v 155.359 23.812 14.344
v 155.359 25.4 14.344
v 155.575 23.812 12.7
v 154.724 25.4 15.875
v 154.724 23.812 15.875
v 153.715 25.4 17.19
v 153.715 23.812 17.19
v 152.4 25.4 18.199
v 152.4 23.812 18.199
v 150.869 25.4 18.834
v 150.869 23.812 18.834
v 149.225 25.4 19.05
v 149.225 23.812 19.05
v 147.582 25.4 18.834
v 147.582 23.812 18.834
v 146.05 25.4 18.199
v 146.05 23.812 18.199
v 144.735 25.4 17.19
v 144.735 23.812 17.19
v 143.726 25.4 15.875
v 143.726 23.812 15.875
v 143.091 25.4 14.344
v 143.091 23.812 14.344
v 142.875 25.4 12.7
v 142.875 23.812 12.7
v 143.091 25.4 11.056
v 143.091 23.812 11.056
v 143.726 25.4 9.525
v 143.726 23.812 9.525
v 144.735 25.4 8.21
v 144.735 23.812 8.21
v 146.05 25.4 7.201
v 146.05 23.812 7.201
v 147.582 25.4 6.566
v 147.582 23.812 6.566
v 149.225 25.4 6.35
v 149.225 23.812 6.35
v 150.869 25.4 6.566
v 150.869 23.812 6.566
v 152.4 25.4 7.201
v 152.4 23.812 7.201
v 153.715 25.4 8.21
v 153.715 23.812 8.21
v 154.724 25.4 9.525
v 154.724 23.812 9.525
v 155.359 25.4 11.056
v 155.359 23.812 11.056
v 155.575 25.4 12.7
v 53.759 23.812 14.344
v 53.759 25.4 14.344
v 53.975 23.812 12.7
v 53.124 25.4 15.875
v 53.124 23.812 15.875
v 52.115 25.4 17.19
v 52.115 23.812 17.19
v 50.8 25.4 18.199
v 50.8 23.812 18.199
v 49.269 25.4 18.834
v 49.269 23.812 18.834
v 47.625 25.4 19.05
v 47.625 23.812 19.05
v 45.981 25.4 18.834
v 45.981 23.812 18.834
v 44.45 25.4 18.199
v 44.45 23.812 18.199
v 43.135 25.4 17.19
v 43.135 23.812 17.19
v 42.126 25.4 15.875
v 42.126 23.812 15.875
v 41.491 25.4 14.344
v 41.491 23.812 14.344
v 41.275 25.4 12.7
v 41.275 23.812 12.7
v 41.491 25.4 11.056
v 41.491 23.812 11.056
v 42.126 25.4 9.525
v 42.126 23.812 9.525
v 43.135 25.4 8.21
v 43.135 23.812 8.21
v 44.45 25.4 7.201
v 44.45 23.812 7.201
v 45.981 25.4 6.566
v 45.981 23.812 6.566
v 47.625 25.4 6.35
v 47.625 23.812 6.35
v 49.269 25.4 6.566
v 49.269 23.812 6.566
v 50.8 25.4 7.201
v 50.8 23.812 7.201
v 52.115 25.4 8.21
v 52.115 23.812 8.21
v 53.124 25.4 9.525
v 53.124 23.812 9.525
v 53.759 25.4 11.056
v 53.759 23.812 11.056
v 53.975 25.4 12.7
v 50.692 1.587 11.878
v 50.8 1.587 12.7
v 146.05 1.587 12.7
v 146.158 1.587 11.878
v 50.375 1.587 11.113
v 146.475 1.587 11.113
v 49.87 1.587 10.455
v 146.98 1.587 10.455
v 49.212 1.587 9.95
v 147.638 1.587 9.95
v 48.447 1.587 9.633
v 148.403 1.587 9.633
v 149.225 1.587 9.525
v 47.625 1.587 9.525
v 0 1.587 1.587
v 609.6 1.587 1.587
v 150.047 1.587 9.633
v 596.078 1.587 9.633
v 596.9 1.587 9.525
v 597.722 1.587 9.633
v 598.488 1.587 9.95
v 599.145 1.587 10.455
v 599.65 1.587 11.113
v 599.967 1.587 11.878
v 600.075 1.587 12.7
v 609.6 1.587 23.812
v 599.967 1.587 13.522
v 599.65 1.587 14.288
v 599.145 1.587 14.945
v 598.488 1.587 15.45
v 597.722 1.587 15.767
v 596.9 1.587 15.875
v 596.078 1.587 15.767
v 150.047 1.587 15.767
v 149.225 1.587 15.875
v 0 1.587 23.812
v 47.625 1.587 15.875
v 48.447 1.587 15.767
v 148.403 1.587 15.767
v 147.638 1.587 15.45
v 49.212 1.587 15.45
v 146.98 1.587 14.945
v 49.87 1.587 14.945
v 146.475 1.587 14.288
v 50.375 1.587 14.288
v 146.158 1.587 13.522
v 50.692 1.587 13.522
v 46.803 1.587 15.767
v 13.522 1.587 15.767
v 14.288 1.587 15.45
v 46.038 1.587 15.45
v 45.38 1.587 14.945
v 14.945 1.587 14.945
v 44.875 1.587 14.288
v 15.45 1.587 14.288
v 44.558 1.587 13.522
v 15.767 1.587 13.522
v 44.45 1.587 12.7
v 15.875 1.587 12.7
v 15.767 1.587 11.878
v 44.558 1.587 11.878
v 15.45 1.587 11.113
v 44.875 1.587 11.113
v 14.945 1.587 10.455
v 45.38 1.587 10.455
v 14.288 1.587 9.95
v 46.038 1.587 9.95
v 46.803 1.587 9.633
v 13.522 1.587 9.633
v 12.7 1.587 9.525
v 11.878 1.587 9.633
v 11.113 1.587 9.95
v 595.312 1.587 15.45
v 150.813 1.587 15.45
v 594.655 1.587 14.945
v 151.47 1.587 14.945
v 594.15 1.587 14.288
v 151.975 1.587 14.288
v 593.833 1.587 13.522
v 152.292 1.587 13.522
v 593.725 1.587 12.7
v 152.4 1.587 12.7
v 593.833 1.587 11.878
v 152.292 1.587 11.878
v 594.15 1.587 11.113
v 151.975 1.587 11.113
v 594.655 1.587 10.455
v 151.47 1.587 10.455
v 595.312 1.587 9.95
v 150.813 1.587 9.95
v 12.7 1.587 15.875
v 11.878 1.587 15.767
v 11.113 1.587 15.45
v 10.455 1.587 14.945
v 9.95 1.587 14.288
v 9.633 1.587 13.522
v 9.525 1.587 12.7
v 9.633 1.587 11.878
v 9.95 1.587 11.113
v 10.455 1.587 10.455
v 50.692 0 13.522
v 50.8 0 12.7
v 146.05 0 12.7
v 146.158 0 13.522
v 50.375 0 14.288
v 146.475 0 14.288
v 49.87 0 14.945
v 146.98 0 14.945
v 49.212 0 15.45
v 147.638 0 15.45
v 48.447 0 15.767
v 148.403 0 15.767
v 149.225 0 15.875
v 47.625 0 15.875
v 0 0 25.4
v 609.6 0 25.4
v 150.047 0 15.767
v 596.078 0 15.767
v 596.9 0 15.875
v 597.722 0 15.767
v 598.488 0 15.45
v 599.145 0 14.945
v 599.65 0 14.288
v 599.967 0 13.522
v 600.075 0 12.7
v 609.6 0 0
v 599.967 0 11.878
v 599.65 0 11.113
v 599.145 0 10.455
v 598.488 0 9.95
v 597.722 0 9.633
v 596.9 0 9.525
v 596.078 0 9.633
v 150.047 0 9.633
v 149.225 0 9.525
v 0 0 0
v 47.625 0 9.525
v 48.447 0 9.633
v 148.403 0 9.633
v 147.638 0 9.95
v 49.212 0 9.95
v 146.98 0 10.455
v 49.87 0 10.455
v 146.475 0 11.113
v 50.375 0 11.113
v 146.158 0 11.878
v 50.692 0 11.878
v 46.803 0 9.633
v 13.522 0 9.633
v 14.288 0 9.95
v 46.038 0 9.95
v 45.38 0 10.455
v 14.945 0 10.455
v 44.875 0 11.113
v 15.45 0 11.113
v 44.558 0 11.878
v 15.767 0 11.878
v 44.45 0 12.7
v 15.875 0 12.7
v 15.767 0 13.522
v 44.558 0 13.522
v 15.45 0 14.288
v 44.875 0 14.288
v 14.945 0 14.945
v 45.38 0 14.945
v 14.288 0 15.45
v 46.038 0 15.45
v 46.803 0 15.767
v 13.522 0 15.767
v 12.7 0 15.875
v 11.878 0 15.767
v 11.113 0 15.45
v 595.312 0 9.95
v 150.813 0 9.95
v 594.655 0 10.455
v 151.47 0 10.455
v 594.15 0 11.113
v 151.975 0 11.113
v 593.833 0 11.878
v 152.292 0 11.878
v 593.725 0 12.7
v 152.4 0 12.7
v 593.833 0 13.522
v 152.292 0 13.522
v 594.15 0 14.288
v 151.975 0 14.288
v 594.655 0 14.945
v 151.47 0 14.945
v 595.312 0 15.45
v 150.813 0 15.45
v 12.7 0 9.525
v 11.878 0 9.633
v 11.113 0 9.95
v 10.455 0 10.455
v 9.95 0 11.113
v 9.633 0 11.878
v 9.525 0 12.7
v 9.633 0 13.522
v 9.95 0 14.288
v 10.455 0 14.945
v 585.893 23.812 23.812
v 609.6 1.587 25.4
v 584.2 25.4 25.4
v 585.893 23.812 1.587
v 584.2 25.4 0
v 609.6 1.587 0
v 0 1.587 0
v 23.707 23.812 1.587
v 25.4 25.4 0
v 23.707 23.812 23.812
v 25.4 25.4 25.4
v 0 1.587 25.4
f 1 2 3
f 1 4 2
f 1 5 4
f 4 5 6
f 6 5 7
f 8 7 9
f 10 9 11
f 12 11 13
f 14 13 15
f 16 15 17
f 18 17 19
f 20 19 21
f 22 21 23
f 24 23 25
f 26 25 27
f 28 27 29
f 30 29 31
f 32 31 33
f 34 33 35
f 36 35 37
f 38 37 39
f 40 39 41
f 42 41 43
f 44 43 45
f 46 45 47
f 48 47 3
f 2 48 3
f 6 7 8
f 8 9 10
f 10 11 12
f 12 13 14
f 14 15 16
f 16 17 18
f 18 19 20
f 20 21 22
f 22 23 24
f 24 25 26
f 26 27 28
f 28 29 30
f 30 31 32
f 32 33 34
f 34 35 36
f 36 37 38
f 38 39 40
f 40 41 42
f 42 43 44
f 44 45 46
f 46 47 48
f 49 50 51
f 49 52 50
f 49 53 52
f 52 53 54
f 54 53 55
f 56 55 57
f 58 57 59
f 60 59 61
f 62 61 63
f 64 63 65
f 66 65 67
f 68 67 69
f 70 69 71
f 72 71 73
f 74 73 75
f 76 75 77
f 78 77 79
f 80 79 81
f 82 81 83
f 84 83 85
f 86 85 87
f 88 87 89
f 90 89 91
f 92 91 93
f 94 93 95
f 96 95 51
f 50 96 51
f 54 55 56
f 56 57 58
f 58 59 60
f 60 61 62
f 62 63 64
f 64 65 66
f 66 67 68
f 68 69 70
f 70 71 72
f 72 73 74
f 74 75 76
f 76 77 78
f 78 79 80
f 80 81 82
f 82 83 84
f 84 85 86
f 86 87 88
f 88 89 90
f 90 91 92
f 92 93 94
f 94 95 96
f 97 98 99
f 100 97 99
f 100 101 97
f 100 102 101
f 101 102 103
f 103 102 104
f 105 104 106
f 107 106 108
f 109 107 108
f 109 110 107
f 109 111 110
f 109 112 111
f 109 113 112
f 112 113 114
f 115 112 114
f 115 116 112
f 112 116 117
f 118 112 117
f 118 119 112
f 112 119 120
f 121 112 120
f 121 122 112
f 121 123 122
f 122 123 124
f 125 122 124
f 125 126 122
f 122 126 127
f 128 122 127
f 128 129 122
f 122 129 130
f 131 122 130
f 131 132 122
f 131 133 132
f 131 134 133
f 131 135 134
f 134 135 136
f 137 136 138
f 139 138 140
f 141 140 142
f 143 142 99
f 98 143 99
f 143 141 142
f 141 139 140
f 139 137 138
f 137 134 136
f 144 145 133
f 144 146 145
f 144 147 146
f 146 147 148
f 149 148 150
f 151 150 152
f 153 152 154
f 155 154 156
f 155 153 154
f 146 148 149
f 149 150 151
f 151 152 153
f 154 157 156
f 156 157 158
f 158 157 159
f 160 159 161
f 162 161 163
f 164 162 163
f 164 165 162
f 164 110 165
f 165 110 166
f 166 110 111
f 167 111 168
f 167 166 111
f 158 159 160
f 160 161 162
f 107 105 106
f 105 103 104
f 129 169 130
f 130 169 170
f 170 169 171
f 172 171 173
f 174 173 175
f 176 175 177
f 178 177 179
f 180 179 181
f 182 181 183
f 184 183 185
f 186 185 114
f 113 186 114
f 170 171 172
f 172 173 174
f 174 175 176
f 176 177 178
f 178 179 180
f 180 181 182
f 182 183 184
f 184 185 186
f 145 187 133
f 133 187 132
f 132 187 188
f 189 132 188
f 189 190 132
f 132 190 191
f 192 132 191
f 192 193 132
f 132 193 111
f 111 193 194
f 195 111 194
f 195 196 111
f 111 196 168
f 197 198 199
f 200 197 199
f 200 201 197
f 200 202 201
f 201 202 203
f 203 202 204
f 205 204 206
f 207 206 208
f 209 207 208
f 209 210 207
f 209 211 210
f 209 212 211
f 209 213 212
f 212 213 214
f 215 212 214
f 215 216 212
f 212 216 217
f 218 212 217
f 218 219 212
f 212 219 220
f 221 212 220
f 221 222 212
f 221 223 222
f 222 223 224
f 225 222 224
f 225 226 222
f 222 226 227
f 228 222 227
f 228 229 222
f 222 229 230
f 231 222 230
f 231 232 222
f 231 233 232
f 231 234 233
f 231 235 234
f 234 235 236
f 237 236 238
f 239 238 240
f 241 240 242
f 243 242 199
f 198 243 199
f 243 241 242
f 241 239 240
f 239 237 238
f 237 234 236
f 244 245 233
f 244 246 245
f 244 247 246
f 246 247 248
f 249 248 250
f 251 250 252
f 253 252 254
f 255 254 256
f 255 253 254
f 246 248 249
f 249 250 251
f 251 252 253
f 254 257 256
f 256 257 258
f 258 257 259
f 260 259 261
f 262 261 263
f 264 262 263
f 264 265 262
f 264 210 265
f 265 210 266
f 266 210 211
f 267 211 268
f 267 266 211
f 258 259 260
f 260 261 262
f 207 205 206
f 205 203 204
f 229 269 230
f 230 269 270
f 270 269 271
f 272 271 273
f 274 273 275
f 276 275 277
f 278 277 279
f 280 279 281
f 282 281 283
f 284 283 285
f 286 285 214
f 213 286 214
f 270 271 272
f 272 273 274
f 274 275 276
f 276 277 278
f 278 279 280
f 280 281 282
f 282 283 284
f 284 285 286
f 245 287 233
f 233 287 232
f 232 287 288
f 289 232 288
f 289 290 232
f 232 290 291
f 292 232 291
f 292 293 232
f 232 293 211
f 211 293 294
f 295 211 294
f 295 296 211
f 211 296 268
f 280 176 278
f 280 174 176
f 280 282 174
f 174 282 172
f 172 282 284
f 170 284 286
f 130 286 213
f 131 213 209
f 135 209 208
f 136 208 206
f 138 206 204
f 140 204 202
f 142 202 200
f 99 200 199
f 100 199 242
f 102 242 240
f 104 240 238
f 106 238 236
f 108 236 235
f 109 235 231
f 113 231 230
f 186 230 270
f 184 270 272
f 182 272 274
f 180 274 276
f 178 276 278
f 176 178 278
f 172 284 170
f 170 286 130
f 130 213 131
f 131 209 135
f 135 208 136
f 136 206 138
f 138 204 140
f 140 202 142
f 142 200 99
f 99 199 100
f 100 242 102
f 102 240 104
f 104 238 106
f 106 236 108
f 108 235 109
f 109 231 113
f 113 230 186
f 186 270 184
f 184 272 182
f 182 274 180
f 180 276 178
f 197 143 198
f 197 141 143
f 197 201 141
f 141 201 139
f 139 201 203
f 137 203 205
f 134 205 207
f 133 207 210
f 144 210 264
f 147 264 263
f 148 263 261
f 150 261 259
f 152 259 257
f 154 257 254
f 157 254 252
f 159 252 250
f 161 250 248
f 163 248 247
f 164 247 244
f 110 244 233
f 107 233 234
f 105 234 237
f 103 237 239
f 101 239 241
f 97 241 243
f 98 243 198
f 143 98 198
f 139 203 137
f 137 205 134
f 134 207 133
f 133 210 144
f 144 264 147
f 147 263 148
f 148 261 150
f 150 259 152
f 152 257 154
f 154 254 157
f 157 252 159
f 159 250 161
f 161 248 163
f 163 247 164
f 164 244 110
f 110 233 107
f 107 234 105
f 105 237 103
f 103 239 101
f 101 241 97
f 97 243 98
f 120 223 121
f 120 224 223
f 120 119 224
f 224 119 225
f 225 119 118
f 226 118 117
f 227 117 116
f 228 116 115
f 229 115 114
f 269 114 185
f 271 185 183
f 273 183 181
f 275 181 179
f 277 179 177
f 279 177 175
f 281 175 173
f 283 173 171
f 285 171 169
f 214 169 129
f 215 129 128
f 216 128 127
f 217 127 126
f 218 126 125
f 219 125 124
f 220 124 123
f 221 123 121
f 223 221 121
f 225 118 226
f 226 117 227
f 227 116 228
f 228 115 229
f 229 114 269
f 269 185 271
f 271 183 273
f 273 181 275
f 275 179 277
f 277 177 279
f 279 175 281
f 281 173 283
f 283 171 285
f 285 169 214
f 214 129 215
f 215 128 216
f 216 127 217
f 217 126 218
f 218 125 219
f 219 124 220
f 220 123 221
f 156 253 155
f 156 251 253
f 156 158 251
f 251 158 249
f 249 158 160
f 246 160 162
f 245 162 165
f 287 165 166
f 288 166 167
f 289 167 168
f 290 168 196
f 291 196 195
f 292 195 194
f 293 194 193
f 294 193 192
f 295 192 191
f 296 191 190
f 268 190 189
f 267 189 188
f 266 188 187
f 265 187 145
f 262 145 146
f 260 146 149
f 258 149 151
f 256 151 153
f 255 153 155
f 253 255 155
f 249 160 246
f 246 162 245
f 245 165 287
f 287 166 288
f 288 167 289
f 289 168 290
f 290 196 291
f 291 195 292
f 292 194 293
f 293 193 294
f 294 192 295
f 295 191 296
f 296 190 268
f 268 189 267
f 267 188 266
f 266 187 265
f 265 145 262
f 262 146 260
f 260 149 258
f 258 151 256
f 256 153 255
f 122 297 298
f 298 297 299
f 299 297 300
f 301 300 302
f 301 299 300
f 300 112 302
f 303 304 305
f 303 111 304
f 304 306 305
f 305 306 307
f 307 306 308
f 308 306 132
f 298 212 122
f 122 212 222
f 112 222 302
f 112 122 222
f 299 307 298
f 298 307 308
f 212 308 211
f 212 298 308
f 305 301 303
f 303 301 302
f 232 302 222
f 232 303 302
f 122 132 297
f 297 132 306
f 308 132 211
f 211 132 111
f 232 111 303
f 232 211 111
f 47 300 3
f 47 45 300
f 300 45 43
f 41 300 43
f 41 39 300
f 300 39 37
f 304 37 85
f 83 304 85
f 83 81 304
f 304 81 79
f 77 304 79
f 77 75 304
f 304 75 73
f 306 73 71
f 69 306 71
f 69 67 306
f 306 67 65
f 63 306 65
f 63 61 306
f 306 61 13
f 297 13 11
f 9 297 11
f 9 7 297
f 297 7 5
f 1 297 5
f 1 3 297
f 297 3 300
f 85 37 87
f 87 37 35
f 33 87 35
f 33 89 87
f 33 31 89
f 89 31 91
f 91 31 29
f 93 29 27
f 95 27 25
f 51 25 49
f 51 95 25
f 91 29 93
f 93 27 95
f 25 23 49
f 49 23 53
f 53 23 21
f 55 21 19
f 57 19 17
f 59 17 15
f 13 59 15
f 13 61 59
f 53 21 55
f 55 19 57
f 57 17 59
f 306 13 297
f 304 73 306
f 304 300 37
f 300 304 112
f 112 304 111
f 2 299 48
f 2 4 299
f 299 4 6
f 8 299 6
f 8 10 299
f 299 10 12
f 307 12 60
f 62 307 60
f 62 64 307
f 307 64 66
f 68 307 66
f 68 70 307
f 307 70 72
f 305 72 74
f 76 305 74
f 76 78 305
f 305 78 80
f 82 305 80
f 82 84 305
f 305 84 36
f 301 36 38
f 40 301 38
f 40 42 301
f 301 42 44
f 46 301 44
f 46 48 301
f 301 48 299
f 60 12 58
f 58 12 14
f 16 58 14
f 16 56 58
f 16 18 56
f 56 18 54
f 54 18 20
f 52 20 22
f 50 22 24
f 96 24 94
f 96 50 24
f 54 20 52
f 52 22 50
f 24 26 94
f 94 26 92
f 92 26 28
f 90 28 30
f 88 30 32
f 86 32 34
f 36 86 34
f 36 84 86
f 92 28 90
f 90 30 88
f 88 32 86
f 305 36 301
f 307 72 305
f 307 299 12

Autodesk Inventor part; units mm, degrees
ref_plane "YZ Plane" through (0, 0, 0) normal (1, 0, 0) x (0, 1, 0)
ref_plane "XZ Plane" through (0, 0, 0) normal (0, 1, 0) x (-1, 0, 0)
ref_plane "XY Plane" through (0, 0, 0) normal (0, 0, 1) x (1, 0, 0)
sketch "Sketch1" plane through (0, 0, 0) normal (0, 0, 1) x (1, 0, 0)
  line L0 (0, 0) -> (609.6, 0)
  line L1 (609.6, 0) -> (609.6, 25.4)
  line L2 (609.6, 25.4) -> (0, 25.4)
  line L3 (0, 25.4) -> (0, 0)
  dimension "d0" = 25.4
  dimension "d1" = 609.6
extrude "Extrusion1" add sketch "Sketch1" along normal blind 25.4
shell "Shell1" thickness 1.5875 removed faces 2 at (0, 16.9333, 8.4667) at (609.6, 8.4667, 8.4667)
sketch "Sketch2" plane through (0, 0, 25.4) normal (0, 0, 1) x (1, 0, 0)
  line L0 (0, 0) -> (0, 25.4) projected
  line L1 (609.6, 25.4) -> (609.6, 0) projected
  line L2 (0, 25.4) -> (609.6, 25.4) projected
  line L3 (0, 1.5875) -> (0, 25.4)
  line L4 (25.4, 25.4) -> (0, 1.5875)
  line L5 (0, 25.4) -> (25.4, 25.4)
  line L6 (584.2, 25.4) -> (609.6, 25.4)
  line L7 (609.6, 25.4) -> (609.6, 1.5875)
  line L8 (609.6, 1.5875) -> (584.2, 25.4)
  dimension "d5" = 25.4
  dimension "d6" = 1.5875
  dimension "d7" = 25.4
  dimension "d8" = 1.5875
extrude "Extrusion2" cut sketch "Sketch2" against normal through all
sketch "Sketch3" plane through (0, 0, 0) normal (0, -1, 0) x (1, 0, 0)
  line L0 (0, 0) -> (0, 25.4) projected
  line L1 (0, 0) -> (609.6, 0) projected
  line L2 (609.6, 0) -> (609.6, 25.4) projected
  circle A0 centre (12.7, 12.7) radius 3.175
  circle A1 centre (596.9, 12.7) radius 3.175
  dimension "d11" = 12.7
  dimension "d12" = 12.7
  dimension "d13" = 6.35
  dimension "d14" = 12.7
  dimension "d15" = 12.7
extrude "Extrusion3" cut sketch "Sketch3" against normal through all
sketch "Sketch5" plane through (0, 0, 0) normal (0, -1, 0) x (1, 0, 0)
  circle A0 centre (12.7, 12.7) radius 3.175 projected
  line L0 (0, 0) -> (0, 25.4) projected
  circle A1 centre (47.625, 12.7) radius 3.175
  circle A2 centre (149.225, 12.7) radius 3.175
  line L1 (12.7, 12.7) -> (47.625, 12.7) construction
  line L2 (47.625, 12.7) -> (149.225, 12.7) construction
  dimension "d23" = 6.35
  dimension "d25" = 47.625
  dimension "d26" = 101.6
extrude "Extrusion5" cut sketch "Sketch5" against normal through all contours A1 | A2
sketch "Sketch6" plane through (25.4, 25.4, 0) normal (0, 1, 0) x (1, 0, 0)
  circle A0 centre (123.825, -12.7) radius 3.175 projected
  circle A1 centre (22.225, -12.7) radius 3.175 projected
  circle A2 centre (22.225, -12.7) radius 6.35
  circle A3 centre (123.825, -12.7) radius 6.35
  point P0 (-25.4, 0)
  dimension "d29" = 12.7
  dimension "d30" = 12.7
extrude "Extrusion6" cut sketch "Sketch6" against normal up to next
properties material "Aluminum-6061"
